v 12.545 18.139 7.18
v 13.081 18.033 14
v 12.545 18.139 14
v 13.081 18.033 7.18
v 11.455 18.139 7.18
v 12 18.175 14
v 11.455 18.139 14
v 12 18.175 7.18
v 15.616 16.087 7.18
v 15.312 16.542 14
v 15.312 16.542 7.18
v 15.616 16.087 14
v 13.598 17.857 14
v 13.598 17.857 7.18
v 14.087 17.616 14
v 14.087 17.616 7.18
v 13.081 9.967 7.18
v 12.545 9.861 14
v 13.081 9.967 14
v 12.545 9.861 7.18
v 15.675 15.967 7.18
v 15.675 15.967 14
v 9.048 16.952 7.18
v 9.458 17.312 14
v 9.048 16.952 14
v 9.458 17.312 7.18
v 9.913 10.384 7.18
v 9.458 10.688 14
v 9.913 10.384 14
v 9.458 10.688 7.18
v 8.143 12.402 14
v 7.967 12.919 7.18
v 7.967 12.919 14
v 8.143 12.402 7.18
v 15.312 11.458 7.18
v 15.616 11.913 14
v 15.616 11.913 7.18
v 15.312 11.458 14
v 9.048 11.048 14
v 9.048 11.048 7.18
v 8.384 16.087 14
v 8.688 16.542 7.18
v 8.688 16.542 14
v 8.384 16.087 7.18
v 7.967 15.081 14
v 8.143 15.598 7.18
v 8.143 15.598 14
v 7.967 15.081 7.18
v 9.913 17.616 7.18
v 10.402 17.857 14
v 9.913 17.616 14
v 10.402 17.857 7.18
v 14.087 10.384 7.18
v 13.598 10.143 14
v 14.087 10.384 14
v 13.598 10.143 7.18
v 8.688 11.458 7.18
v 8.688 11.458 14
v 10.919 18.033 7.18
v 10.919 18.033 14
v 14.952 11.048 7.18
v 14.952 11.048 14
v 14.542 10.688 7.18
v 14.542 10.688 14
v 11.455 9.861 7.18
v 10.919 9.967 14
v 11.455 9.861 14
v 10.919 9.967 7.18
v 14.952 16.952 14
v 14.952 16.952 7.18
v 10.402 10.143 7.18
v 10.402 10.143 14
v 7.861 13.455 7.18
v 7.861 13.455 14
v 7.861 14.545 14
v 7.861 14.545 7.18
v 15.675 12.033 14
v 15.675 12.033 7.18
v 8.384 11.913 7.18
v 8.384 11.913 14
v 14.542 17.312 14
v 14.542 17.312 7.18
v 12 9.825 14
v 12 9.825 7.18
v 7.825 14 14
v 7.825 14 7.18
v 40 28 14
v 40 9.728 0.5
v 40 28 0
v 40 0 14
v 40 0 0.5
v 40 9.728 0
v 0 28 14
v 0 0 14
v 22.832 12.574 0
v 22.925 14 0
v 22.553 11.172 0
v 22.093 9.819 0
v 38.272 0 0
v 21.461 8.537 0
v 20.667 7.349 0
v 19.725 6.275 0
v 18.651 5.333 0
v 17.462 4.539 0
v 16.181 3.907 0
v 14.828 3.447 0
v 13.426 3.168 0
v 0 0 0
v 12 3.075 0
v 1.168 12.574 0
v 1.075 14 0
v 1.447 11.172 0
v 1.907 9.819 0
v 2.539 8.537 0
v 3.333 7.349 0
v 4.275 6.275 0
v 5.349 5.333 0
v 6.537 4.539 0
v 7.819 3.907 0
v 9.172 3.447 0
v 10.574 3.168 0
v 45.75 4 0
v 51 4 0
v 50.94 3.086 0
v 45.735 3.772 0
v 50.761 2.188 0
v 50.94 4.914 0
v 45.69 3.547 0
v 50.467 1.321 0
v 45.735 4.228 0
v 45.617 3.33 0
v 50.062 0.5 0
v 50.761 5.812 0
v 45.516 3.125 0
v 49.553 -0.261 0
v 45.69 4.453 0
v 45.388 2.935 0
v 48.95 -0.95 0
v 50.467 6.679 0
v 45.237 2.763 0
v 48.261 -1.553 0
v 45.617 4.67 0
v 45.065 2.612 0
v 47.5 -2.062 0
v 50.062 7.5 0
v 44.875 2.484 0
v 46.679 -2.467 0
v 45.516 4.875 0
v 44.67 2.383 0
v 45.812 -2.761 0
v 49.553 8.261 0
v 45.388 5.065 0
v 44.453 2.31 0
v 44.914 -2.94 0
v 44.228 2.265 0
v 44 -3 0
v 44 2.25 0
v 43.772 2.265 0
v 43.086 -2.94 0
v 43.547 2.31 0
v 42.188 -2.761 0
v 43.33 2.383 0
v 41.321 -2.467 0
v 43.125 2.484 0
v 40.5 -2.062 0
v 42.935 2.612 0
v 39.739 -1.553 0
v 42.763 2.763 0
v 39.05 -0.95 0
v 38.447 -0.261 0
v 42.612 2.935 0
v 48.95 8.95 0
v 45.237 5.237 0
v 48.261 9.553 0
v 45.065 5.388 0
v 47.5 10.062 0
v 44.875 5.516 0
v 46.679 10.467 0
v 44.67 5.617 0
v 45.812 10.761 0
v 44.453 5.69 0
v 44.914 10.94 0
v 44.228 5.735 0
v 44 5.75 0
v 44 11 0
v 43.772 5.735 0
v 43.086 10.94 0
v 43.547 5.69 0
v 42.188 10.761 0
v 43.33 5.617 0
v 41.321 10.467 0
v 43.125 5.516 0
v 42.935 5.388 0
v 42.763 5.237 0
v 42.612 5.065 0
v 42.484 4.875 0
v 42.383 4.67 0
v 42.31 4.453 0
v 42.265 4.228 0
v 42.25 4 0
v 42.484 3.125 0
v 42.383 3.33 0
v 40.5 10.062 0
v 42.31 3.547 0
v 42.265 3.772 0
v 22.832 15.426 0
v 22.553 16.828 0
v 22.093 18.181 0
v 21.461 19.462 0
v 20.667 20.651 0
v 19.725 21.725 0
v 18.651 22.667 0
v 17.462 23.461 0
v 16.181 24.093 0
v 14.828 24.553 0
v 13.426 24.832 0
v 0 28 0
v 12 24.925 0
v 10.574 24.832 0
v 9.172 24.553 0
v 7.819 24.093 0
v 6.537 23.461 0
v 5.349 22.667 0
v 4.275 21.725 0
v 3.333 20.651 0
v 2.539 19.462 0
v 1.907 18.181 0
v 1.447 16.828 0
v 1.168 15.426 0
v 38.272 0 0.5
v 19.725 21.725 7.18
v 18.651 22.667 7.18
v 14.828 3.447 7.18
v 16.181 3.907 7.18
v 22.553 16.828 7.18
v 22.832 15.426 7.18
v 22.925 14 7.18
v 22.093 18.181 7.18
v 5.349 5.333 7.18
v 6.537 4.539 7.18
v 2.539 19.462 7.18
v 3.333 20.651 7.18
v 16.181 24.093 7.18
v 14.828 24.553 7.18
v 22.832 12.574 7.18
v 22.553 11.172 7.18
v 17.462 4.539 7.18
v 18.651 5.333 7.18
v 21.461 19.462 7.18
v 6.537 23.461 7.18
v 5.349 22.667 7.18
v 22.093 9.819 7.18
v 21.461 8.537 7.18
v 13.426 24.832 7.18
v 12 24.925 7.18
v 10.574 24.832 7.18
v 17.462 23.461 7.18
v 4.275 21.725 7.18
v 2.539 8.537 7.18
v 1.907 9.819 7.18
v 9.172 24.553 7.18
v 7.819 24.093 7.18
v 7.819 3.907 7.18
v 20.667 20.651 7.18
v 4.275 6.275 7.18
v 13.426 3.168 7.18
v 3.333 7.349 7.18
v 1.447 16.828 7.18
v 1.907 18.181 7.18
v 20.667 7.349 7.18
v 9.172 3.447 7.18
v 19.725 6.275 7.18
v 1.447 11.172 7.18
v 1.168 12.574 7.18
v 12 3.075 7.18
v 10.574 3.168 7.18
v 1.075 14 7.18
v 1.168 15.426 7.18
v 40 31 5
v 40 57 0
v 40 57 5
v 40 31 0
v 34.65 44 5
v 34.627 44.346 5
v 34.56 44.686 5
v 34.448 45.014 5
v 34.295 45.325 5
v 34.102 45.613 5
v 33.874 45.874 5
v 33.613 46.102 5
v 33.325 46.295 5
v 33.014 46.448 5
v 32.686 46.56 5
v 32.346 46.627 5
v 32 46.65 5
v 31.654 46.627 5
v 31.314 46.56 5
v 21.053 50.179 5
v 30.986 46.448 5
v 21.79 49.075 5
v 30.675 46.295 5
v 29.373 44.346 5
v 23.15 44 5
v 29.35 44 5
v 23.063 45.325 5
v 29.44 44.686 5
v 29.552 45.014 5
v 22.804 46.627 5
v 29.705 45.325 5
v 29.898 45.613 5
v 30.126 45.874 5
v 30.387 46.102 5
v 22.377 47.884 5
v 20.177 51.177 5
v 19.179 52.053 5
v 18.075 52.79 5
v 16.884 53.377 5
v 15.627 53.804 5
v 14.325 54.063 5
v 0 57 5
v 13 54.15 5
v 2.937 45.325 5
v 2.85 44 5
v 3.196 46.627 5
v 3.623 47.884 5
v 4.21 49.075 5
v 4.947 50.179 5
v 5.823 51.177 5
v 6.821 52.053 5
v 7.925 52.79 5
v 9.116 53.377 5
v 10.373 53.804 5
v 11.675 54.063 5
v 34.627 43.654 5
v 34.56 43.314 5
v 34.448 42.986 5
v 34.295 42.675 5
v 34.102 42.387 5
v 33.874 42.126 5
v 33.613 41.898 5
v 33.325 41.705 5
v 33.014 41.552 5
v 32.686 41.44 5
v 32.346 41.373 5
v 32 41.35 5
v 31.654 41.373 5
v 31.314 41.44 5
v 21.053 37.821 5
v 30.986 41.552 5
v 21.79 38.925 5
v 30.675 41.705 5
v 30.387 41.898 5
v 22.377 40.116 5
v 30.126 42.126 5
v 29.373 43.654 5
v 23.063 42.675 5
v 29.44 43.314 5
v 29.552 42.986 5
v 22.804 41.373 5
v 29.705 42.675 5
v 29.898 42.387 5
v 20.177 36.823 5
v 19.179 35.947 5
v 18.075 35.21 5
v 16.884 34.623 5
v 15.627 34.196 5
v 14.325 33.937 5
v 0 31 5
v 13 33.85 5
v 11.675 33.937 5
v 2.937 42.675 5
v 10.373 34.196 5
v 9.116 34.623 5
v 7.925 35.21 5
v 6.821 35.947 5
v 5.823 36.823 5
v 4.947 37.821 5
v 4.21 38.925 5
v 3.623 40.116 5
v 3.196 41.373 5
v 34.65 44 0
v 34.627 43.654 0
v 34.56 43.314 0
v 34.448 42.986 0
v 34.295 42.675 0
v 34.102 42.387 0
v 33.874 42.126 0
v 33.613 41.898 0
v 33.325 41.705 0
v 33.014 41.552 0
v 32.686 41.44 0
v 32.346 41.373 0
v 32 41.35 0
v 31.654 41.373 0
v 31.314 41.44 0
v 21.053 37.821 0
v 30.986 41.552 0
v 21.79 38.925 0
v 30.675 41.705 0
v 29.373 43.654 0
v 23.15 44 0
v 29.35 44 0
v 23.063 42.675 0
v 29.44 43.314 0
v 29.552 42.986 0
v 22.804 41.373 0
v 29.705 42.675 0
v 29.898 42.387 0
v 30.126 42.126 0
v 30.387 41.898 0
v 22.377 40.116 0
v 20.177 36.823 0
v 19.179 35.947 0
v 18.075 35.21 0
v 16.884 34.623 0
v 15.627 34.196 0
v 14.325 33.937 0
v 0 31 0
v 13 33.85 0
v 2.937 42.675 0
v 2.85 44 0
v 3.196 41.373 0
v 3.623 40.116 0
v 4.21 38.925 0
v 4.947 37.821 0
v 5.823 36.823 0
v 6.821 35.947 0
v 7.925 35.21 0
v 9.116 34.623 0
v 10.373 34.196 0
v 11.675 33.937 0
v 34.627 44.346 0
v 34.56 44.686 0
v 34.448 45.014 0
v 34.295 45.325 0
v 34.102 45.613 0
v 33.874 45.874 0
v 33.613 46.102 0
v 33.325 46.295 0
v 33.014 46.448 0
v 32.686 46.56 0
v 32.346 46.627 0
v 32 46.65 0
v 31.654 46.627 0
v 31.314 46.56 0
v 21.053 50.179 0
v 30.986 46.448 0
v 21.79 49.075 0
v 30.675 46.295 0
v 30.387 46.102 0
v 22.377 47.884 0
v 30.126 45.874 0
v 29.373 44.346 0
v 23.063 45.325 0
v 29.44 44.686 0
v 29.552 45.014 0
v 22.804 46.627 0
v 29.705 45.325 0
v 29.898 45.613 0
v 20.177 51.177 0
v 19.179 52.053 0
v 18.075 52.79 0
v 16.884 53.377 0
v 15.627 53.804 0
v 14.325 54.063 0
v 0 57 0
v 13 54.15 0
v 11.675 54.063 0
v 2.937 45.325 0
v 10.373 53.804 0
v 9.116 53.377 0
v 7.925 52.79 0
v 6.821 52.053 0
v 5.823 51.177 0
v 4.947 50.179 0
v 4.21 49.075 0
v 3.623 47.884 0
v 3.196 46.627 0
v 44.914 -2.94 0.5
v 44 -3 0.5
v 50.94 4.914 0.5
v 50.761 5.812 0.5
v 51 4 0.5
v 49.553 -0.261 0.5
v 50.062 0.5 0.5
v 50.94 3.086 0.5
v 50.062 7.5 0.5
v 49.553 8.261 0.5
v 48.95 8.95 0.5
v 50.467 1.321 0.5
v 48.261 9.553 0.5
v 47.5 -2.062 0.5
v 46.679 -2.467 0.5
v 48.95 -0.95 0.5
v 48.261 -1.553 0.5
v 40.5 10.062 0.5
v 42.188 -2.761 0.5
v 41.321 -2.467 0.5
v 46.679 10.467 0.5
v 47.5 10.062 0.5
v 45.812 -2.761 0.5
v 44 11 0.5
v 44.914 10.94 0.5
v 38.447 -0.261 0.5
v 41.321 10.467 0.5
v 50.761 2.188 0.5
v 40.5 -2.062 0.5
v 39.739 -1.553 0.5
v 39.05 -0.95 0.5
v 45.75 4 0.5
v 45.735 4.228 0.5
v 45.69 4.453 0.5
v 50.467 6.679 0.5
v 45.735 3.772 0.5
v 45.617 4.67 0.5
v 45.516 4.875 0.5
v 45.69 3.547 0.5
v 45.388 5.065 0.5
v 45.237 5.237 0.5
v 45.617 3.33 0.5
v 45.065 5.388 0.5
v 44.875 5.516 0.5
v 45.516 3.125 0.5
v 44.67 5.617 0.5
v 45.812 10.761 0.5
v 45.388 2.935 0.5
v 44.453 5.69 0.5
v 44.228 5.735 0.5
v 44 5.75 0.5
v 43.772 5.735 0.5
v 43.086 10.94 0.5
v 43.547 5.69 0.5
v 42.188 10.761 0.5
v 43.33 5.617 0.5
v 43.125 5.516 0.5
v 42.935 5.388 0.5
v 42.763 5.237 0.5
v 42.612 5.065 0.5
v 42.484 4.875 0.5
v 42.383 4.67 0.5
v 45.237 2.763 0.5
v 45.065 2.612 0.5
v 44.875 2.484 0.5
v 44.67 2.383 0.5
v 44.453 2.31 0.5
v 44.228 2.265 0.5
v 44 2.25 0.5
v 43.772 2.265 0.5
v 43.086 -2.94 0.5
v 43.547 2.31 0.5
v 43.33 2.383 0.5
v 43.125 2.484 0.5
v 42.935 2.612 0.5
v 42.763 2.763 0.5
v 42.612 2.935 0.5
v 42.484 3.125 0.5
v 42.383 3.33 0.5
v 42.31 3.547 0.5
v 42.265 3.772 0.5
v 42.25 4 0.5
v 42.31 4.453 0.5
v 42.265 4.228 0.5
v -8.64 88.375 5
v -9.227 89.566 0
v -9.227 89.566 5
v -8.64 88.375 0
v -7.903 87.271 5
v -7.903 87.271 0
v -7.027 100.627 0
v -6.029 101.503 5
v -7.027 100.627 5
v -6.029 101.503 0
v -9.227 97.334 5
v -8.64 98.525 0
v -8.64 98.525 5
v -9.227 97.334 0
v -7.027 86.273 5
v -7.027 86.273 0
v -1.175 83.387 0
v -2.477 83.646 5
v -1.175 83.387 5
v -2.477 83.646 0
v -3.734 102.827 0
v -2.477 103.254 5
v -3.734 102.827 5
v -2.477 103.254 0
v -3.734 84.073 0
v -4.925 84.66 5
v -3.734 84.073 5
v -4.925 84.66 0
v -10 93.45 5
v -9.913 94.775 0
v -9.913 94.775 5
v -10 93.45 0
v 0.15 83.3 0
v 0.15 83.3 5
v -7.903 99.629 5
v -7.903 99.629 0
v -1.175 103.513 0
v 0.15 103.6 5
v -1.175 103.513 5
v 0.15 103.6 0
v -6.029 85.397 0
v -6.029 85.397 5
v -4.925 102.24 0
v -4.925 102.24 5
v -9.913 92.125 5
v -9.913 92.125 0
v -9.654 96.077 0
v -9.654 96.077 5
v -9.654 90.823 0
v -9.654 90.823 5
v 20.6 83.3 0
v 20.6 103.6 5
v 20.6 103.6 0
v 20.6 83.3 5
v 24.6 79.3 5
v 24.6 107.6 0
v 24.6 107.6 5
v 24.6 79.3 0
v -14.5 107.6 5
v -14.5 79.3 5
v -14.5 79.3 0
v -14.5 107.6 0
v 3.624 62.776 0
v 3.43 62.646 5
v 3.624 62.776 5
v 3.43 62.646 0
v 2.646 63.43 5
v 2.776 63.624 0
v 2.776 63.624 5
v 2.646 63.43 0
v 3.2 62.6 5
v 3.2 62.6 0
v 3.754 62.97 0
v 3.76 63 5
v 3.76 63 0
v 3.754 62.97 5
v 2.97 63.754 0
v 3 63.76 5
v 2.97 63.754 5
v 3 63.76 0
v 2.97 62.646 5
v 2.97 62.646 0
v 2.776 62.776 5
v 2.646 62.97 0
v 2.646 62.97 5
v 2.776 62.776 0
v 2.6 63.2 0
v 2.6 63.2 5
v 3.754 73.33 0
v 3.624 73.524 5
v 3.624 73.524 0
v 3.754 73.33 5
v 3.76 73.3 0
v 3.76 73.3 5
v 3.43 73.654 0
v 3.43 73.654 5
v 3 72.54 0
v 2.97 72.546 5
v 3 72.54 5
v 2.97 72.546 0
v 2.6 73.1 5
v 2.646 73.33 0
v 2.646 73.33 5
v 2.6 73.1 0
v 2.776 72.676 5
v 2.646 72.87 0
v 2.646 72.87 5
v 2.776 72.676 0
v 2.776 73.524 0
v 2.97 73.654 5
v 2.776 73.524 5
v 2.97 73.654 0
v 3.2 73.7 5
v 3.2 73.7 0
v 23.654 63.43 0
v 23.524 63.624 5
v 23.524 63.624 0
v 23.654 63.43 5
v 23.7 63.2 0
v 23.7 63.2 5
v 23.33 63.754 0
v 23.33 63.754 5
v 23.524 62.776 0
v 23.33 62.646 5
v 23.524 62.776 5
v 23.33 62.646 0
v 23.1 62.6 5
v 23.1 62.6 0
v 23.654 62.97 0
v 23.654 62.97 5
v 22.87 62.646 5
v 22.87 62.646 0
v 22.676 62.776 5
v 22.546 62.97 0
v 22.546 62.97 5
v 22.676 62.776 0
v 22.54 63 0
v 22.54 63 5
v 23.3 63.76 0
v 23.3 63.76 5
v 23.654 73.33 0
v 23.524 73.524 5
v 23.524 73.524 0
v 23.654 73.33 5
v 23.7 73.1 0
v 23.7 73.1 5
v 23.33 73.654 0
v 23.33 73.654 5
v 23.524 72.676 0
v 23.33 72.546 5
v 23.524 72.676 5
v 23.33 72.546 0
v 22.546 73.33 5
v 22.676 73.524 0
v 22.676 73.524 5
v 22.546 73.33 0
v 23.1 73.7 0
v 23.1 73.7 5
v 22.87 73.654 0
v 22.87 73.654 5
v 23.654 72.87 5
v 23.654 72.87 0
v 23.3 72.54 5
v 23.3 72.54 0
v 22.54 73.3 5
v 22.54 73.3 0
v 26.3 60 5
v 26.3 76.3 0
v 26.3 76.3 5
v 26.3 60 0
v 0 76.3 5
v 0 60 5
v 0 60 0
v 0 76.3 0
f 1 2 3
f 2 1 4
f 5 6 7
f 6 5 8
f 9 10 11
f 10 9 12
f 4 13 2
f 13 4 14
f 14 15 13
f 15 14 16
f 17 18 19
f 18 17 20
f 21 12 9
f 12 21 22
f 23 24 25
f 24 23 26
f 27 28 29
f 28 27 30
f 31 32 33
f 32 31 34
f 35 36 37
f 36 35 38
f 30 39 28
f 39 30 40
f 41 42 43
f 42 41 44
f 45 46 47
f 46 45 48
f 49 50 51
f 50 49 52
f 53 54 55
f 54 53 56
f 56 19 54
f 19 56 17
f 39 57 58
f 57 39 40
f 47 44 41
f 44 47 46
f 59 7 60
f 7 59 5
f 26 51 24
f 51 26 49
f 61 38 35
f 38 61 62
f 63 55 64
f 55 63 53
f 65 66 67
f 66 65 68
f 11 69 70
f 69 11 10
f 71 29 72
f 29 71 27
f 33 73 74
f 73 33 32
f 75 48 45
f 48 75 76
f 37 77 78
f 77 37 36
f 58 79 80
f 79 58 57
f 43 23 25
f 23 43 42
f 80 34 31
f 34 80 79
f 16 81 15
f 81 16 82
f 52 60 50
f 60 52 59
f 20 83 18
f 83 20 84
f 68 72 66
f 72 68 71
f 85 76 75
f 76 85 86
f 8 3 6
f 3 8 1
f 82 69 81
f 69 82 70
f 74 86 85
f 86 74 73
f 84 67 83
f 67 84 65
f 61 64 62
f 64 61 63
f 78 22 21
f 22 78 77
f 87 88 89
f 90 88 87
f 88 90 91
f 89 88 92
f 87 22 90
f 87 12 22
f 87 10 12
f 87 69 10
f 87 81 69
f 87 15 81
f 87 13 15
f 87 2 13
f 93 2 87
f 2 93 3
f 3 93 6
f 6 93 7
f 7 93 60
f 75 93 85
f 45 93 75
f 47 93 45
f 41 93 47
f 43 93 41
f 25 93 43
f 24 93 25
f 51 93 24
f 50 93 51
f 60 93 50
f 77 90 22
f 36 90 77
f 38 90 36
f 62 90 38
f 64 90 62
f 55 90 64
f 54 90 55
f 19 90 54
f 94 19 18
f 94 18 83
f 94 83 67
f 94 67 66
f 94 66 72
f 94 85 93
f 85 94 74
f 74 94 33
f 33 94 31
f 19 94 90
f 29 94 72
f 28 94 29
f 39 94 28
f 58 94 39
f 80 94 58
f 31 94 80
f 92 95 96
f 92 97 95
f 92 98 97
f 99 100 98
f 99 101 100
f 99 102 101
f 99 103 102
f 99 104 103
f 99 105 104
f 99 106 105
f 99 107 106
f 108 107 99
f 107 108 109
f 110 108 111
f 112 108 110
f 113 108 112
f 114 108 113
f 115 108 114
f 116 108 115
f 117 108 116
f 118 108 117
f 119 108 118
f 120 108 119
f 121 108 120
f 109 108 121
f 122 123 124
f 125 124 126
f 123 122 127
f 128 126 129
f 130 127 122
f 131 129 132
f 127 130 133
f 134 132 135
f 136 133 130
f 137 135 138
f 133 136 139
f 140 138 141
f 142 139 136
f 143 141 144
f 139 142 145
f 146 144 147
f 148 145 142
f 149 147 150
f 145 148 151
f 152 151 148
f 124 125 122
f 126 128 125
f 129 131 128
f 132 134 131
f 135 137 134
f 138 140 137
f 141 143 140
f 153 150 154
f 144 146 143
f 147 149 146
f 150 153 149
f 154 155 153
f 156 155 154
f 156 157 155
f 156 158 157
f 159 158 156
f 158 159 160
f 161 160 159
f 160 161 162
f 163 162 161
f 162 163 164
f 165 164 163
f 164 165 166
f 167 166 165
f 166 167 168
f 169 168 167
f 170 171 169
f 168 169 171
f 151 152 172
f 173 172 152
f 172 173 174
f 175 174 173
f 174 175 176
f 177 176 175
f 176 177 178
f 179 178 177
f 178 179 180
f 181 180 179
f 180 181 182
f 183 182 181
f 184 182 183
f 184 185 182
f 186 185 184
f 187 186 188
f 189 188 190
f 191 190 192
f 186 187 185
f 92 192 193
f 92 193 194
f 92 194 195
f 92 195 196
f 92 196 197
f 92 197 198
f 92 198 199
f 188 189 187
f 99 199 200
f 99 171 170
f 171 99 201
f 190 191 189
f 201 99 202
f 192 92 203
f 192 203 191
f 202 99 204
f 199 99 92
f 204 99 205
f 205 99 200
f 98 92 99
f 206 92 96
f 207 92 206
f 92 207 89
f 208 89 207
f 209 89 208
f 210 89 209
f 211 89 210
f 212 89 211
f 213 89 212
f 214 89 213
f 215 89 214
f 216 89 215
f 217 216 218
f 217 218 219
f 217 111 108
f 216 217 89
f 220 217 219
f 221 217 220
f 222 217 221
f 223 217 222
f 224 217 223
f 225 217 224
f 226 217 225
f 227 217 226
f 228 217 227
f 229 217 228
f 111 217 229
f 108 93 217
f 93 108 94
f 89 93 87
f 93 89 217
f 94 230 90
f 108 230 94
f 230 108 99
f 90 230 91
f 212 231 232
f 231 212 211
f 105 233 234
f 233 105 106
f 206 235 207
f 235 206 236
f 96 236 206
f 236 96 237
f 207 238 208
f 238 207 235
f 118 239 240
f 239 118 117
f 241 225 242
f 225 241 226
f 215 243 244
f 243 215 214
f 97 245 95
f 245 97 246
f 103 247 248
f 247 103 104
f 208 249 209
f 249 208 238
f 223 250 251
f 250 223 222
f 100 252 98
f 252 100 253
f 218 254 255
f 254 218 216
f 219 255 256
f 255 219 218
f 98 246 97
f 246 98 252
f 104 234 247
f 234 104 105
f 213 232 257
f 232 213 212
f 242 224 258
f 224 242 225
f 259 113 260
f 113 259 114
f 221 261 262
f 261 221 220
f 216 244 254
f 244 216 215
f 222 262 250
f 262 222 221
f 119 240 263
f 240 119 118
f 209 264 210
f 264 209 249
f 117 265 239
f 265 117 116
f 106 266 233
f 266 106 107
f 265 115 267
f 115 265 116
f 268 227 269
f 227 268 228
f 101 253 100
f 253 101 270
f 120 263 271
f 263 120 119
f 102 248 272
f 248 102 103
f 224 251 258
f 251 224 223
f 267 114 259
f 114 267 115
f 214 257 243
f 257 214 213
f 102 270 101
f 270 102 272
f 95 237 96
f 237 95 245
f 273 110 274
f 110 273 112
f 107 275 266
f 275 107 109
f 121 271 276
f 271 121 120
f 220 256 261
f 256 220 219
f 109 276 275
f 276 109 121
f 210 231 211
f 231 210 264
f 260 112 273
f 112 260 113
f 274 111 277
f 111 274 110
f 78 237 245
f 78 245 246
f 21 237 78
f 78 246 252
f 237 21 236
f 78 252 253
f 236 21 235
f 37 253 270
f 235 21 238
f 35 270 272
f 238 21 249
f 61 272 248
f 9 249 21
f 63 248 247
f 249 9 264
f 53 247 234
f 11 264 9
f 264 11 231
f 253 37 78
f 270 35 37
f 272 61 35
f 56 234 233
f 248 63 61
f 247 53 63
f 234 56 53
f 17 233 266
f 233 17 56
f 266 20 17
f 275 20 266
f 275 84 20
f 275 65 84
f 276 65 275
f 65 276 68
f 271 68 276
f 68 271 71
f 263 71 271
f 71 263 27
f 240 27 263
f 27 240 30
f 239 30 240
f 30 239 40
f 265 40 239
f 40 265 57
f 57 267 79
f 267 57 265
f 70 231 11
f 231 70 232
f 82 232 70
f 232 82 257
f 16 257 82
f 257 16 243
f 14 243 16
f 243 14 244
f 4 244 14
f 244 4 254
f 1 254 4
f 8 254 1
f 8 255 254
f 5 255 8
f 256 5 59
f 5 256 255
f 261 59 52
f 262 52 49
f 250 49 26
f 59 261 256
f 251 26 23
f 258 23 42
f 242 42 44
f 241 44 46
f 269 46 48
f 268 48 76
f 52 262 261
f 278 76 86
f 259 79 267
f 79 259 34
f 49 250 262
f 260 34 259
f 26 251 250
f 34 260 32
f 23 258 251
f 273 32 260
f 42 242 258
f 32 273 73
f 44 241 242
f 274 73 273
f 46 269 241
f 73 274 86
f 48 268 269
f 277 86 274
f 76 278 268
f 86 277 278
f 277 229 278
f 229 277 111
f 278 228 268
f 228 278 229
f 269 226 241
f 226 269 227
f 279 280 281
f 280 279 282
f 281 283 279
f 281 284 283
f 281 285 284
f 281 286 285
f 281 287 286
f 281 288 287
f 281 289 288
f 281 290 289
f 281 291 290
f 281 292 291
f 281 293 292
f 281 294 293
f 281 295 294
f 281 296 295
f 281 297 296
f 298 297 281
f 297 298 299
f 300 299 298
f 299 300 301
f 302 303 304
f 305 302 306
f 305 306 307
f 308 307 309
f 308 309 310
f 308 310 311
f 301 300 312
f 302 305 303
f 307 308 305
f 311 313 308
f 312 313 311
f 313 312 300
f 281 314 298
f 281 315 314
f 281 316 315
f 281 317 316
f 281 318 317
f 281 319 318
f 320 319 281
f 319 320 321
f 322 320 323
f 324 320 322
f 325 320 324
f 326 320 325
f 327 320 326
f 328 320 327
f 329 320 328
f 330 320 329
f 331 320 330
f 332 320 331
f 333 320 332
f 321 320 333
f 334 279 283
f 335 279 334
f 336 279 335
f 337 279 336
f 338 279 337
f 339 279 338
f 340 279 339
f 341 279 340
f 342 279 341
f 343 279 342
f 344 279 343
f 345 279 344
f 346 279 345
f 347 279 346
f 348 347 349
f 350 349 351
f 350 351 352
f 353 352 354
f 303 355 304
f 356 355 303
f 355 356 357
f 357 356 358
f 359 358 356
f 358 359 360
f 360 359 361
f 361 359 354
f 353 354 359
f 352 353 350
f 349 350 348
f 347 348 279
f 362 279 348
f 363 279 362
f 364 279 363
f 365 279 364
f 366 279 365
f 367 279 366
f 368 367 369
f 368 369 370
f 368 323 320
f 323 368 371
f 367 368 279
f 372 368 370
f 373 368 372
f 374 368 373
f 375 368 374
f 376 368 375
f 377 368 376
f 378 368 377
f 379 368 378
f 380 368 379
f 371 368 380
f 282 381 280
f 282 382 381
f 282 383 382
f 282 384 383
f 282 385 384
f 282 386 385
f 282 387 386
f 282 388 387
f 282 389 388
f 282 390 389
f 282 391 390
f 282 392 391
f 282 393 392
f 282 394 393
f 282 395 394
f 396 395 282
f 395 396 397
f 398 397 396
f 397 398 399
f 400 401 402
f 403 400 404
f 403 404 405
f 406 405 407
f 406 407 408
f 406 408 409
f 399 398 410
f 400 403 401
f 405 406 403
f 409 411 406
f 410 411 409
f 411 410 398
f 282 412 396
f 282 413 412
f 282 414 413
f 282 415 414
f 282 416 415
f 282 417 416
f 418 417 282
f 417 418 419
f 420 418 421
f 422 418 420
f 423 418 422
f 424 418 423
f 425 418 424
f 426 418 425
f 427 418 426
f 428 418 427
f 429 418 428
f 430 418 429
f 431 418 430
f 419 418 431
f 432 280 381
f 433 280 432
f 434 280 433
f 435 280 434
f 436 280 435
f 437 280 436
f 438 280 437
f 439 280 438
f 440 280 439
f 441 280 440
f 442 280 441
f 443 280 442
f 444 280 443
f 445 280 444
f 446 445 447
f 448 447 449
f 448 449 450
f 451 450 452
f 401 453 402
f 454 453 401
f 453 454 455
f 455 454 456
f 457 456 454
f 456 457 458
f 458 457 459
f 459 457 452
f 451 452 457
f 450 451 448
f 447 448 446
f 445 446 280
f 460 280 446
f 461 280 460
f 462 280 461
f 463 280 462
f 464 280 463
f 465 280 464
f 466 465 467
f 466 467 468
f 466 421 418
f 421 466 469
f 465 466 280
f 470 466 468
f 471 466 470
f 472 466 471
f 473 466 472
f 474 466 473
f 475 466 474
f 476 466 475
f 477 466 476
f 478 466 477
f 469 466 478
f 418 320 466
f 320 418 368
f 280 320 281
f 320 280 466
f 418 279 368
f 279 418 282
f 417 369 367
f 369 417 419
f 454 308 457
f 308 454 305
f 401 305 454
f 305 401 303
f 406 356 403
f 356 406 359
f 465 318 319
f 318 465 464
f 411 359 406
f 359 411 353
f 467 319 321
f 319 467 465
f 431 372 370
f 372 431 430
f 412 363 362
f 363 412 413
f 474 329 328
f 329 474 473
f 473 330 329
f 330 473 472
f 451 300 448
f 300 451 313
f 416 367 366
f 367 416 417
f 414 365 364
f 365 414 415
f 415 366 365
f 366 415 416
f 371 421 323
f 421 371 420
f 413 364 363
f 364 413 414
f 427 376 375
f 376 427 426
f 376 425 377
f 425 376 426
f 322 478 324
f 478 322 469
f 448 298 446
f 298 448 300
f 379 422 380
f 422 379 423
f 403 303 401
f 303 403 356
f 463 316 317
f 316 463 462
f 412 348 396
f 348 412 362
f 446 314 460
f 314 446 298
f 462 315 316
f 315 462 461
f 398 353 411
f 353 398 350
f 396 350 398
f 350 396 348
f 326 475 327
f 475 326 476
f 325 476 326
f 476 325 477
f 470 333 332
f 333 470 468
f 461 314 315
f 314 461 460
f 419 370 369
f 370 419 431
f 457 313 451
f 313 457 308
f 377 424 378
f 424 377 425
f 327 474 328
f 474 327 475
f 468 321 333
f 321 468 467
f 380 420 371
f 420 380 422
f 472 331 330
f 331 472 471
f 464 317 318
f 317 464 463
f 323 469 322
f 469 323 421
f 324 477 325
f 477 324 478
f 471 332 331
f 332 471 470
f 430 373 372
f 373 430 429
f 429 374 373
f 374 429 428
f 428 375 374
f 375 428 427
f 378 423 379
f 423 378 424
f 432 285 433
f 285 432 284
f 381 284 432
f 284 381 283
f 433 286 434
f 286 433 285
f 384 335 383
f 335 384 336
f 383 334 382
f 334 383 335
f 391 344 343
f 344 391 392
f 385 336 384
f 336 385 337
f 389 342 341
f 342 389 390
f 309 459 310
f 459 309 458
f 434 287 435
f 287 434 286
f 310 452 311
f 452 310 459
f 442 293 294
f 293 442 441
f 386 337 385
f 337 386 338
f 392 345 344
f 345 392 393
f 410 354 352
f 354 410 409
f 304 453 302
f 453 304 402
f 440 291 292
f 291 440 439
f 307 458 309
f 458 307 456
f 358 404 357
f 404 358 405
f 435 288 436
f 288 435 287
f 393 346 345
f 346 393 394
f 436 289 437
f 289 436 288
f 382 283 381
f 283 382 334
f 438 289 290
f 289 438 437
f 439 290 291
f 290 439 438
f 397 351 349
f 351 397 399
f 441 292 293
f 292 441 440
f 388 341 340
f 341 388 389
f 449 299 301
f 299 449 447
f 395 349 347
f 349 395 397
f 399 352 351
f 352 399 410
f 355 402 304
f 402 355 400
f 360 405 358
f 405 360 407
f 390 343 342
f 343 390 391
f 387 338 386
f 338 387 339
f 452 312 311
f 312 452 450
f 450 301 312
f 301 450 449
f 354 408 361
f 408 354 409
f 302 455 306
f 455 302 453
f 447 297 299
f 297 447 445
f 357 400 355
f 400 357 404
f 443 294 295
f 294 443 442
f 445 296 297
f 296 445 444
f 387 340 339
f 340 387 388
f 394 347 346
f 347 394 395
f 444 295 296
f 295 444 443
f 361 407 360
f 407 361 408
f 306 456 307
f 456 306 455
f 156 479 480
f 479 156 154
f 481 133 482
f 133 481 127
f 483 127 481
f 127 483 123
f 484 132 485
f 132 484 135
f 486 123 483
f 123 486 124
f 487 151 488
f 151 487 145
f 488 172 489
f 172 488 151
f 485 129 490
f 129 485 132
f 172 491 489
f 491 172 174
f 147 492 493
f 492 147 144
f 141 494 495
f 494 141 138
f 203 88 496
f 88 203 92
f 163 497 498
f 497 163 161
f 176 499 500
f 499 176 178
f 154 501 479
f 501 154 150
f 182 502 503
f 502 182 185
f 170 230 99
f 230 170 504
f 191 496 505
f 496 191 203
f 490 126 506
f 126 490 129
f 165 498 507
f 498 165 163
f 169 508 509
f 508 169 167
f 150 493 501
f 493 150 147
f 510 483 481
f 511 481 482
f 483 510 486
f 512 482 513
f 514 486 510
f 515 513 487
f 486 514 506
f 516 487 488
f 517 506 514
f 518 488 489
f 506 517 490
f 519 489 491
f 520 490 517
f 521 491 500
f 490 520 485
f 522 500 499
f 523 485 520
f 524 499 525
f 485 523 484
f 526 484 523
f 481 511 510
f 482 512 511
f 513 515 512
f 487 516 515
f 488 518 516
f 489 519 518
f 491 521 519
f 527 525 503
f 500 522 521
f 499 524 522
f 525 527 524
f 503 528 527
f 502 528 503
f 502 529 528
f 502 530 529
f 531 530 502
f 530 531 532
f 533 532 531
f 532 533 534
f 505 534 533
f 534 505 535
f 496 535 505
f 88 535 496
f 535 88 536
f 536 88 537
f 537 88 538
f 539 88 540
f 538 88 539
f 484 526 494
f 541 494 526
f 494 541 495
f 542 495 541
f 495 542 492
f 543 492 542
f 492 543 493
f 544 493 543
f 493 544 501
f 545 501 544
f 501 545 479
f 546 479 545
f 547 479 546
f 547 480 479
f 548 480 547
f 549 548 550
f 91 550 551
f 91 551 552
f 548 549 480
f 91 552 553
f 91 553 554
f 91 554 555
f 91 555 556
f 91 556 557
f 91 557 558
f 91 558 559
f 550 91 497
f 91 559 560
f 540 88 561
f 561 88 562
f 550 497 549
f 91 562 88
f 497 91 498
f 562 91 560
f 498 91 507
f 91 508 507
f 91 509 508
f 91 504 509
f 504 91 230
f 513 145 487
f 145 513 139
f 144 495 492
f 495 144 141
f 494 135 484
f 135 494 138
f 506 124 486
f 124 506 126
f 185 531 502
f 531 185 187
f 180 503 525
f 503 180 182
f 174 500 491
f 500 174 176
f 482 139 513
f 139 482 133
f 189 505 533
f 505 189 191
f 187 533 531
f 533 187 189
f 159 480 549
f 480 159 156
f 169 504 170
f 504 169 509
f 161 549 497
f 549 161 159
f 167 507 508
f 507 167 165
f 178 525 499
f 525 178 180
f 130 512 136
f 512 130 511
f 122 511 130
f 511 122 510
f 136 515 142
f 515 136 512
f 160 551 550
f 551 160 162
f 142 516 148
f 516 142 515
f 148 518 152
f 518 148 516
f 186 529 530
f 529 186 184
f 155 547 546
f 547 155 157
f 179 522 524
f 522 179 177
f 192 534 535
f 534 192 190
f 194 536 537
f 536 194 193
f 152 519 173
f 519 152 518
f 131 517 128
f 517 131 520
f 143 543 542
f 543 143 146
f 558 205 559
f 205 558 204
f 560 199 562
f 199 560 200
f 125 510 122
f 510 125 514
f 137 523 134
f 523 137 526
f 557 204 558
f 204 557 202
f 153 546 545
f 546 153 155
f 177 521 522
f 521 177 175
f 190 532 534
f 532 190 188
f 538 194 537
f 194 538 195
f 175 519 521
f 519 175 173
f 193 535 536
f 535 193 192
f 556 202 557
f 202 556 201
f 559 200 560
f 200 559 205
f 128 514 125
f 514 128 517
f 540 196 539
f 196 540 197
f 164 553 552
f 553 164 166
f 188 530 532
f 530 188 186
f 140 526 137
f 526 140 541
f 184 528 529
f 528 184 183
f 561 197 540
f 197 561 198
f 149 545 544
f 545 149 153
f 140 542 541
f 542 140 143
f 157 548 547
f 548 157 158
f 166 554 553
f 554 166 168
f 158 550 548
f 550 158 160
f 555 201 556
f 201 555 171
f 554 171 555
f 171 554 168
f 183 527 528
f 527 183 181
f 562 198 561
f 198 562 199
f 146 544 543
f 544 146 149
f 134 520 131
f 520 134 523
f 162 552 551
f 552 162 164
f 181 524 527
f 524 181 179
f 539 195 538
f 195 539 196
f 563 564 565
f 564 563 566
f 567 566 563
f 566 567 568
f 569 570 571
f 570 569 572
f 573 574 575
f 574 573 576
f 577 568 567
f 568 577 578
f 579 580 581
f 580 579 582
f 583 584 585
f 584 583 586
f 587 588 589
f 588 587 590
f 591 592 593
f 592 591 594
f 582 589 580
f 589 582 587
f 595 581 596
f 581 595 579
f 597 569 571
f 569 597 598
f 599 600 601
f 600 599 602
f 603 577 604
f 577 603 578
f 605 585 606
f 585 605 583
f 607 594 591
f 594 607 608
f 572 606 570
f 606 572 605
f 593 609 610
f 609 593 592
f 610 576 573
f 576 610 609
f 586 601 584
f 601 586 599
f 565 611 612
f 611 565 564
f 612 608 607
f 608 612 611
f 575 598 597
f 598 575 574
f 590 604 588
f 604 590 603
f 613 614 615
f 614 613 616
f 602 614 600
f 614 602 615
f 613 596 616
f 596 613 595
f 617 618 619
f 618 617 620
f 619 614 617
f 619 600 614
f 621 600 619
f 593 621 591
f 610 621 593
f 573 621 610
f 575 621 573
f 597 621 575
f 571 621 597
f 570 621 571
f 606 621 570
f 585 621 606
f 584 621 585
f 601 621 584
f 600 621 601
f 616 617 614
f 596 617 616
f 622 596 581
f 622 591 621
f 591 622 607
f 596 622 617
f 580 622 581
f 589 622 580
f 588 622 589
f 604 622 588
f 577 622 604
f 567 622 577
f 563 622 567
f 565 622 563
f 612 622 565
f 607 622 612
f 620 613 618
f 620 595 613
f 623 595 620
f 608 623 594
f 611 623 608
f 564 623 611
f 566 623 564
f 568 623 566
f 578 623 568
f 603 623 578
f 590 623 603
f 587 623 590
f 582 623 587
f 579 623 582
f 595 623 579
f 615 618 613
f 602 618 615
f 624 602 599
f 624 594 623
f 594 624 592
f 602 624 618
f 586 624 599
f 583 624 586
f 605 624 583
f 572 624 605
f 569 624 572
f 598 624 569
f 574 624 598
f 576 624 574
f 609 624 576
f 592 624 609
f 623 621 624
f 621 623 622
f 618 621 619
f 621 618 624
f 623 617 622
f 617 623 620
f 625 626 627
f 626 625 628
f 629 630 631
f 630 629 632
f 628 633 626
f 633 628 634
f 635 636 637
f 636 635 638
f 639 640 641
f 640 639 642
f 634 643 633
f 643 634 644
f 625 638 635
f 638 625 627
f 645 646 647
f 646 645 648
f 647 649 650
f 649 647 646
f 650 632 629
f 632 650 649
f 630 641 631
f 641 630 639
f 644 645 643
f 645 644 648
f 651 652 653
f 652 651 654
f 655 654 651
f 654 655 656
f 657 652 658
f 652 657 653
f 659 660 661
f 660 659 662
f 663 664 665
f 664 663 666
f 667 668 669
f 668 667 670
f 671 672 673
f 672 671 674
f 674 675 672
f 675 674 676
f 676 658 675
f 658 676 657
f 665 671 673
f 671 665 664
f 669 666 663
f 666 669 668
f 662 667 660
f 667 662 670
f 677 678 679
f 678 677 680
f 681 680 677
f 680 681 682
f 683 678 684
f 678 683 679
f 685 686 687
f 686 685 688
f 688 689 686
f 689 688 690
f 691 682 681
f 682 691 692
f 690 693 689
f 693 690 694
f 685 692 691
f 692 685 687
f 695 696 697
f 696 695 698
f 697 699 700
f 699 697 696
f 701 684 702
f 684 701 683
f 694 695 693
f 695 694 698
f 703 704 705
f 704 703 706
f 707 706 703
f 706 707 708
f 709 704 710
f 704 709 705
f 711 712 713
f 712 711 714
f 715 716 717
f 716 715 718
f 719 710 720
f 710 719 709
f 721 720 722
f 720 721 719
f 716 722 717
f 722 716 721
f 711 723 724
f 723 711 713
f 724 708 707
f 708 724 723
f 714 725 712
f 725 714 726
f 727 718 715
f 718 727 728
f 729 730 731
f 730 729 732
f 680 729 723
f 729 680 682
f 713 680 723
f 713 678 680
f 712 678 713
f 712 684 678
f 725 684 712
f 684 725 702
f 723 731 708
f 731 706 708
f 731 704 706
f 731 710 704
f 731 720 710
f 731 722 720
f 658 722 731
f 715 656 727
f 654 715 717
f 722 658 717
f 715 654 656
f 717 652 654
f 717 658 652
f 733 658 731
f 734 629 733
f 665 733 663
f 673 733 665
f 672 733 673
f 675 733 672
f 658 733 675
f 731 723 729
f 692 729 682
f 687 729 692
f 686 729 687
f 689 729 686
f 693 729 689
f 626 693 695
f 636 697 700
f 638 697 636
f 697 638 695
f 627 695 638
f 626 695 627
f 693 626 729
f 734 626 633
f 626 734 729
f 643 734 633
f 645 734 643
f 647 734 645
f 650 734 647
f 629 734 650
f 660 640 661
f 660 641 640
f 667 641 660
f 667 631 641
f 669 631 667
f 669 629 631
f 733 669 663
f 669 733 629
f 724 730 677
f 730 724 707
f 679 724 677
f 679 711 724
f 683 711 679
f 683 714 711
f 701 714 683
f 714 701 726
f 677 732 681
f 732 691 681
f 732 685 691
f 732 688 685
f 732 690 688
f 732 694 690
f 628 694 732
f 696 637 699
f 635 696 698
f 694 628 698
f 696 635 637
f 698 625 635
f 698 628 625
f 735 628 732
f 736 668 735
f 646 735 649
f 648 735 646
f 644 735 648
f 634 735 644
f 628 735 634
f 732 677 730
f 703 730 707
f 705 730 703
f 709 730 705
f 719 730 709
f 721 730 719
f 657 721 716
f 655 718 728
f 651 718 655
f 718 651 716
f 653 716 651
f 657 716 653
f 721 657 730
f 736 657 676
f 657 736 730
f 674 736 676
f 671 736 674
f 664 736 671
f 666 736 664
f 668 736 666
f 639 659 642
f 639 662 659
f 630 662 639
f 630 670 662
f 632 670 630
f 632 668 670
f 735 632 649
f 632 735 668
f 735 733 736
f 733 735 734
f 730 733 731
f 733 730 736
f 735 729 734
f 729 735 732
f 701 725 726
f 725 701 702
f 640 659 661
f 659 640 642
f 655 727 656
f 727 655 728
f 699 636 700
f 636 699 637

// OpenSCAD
// Gen-CS — fit coupon: O20/O5 THROUGH pockets at carrier thickness (test on a steel offcut), 608 seat,
// D-flat bore, gap shim, and one bobbin-bay slice (bobbin footprint + bay_clear) to test former fit.
include <parameters.scad>;
$fn = 48;
// D-flat keyed bore: flat faces +X (angle 0 = magnet pocket 0 = index notch)
module dflat_bore(h) {
    intersection() {
        cylinder(d=shaft_bore, h=h);
        translate([-shaft_bore, -shaft_bore, 0]) cube([shaft_bore + dflat_x, 2*shaft_bore, h]);
    }
}
module sector_2d(r_in, r_out, ang) {
    polygon([
        for (a = [-ang/2 : ang/24 : ang/2]) [r_in*cos(a), r_in*sin(a)],
        for (a = [ang/2 : -ang/24 : -ang/2]) [r_out*cos(a), r_out*sin(a)]
    ]);
}
module footprint_2d() { offset(r=wall) sector_2d(coil_id_r, coil_od_r, span_deg); }
module hub_2d()       { offset(delta=-coil_core_inset) sector_2d(coil_id_r, coil_od_r, span_deg); }

block_w = 40; block_d = 28; block_h = 14;
difference() {
    cube([block_w, block_d, block_h]);
    translate([12, block_d/2, -0.02]) cylinder(d=bearing_d, h=bearing_h);
    translate([12, block_d/2, -0.1]) dflat_bore(block_h + 1);
}
translate([0, block_d + 3, 0]) difference() {
    cube([40, 26, carrier_thick]);
    translate([13, 13, -0.1]) cylinder(d=large_pocket_d, h=carrier_thick + 0.2);
    translate([32, 13, -0.1]) cylinder(d=small_pocket_d, h=carrier_thick + 0.2);
}
translate([block_w + 4, 4, 0])
    difference() {
        cylinder(d=spacer_pad_od, h=gap_spacer_h);
        translate([0, 0, -0.1]) cylinder(d=spacer_pad_id, h=gap_spacer_h + 0.2);
    }
// KEYHOLE pole pocket test (2026-10-18): O20 disc pocket + N42 20x10x5 block pocket merged (hull), as on the arcs.
// Drop a disc and a block in: they must push each other onto the two far walls and sit flat. Block pocket has corner reliefs.
translate([0, block_d + 3 + 26 + 3 + block_radial + block_pocket_clear + 6 + 3 + max(block_tangential, large_pocket_d) / 2 + 4, 0]) difference() {
    translate([-14.5, -(max(block_tangential, large_pocket_d) / 2 + 4), 0]) cube([14.5 + abs(block_R_list[0] - R_large) + block_radial / 2 + 4, max(block_tangential, large_pocket_d) + 8, carrier_thick]);
    translate([0, 0, -0.1]) {
        translate([disc_pocket_shift * sign(block_R_list[0] - R_large), 0, 0]) cylinder(d=large_pocket_d, h=carrier_thick + 0.2);
        translate([disc_pocket_shift * sign(block_R_list[0] - R_large), -(block_tangential + block_pocket_clear)/2, 0])
            cube([abs(block_R_list[0] - R_large) - abs(block_pocket_shift) + (block_radial + block_pocket_clear)/2 - disc_pocket_shift * sign(block_R_list[0] - R_large), block_tangential + block_pocket_clear, carrier_thick + 0.2]);
    }
}
// N42 20x10x5 BLOCK through-pocket test (block + block_pocket_clear, 1.2 mm corner reliefs), 2026-10-16
translate([0, block_d + 3 + 26 + 3, 0]) difference() {
    cube([block_tangential + block_pocket_clear + 6, block_radial + block_pocket_clear + 6, carrier_thick]);
    translate([3, 3, -0.1]) cube([block_tangential + block_pocket_clear, block_radial + block_pocket_clear, carrier_thick + 0.2]);
    for (x = [3.2, 3 + block_tangential + block_pocket_clear - 0.2], y = [3.2, 3 + block_radial + block_pocket_clear - 0.2])
        translate([x, y, -0.1]) cylinder(d=1.2, h=carrier_thick + 0.2, $fn=16);
}
